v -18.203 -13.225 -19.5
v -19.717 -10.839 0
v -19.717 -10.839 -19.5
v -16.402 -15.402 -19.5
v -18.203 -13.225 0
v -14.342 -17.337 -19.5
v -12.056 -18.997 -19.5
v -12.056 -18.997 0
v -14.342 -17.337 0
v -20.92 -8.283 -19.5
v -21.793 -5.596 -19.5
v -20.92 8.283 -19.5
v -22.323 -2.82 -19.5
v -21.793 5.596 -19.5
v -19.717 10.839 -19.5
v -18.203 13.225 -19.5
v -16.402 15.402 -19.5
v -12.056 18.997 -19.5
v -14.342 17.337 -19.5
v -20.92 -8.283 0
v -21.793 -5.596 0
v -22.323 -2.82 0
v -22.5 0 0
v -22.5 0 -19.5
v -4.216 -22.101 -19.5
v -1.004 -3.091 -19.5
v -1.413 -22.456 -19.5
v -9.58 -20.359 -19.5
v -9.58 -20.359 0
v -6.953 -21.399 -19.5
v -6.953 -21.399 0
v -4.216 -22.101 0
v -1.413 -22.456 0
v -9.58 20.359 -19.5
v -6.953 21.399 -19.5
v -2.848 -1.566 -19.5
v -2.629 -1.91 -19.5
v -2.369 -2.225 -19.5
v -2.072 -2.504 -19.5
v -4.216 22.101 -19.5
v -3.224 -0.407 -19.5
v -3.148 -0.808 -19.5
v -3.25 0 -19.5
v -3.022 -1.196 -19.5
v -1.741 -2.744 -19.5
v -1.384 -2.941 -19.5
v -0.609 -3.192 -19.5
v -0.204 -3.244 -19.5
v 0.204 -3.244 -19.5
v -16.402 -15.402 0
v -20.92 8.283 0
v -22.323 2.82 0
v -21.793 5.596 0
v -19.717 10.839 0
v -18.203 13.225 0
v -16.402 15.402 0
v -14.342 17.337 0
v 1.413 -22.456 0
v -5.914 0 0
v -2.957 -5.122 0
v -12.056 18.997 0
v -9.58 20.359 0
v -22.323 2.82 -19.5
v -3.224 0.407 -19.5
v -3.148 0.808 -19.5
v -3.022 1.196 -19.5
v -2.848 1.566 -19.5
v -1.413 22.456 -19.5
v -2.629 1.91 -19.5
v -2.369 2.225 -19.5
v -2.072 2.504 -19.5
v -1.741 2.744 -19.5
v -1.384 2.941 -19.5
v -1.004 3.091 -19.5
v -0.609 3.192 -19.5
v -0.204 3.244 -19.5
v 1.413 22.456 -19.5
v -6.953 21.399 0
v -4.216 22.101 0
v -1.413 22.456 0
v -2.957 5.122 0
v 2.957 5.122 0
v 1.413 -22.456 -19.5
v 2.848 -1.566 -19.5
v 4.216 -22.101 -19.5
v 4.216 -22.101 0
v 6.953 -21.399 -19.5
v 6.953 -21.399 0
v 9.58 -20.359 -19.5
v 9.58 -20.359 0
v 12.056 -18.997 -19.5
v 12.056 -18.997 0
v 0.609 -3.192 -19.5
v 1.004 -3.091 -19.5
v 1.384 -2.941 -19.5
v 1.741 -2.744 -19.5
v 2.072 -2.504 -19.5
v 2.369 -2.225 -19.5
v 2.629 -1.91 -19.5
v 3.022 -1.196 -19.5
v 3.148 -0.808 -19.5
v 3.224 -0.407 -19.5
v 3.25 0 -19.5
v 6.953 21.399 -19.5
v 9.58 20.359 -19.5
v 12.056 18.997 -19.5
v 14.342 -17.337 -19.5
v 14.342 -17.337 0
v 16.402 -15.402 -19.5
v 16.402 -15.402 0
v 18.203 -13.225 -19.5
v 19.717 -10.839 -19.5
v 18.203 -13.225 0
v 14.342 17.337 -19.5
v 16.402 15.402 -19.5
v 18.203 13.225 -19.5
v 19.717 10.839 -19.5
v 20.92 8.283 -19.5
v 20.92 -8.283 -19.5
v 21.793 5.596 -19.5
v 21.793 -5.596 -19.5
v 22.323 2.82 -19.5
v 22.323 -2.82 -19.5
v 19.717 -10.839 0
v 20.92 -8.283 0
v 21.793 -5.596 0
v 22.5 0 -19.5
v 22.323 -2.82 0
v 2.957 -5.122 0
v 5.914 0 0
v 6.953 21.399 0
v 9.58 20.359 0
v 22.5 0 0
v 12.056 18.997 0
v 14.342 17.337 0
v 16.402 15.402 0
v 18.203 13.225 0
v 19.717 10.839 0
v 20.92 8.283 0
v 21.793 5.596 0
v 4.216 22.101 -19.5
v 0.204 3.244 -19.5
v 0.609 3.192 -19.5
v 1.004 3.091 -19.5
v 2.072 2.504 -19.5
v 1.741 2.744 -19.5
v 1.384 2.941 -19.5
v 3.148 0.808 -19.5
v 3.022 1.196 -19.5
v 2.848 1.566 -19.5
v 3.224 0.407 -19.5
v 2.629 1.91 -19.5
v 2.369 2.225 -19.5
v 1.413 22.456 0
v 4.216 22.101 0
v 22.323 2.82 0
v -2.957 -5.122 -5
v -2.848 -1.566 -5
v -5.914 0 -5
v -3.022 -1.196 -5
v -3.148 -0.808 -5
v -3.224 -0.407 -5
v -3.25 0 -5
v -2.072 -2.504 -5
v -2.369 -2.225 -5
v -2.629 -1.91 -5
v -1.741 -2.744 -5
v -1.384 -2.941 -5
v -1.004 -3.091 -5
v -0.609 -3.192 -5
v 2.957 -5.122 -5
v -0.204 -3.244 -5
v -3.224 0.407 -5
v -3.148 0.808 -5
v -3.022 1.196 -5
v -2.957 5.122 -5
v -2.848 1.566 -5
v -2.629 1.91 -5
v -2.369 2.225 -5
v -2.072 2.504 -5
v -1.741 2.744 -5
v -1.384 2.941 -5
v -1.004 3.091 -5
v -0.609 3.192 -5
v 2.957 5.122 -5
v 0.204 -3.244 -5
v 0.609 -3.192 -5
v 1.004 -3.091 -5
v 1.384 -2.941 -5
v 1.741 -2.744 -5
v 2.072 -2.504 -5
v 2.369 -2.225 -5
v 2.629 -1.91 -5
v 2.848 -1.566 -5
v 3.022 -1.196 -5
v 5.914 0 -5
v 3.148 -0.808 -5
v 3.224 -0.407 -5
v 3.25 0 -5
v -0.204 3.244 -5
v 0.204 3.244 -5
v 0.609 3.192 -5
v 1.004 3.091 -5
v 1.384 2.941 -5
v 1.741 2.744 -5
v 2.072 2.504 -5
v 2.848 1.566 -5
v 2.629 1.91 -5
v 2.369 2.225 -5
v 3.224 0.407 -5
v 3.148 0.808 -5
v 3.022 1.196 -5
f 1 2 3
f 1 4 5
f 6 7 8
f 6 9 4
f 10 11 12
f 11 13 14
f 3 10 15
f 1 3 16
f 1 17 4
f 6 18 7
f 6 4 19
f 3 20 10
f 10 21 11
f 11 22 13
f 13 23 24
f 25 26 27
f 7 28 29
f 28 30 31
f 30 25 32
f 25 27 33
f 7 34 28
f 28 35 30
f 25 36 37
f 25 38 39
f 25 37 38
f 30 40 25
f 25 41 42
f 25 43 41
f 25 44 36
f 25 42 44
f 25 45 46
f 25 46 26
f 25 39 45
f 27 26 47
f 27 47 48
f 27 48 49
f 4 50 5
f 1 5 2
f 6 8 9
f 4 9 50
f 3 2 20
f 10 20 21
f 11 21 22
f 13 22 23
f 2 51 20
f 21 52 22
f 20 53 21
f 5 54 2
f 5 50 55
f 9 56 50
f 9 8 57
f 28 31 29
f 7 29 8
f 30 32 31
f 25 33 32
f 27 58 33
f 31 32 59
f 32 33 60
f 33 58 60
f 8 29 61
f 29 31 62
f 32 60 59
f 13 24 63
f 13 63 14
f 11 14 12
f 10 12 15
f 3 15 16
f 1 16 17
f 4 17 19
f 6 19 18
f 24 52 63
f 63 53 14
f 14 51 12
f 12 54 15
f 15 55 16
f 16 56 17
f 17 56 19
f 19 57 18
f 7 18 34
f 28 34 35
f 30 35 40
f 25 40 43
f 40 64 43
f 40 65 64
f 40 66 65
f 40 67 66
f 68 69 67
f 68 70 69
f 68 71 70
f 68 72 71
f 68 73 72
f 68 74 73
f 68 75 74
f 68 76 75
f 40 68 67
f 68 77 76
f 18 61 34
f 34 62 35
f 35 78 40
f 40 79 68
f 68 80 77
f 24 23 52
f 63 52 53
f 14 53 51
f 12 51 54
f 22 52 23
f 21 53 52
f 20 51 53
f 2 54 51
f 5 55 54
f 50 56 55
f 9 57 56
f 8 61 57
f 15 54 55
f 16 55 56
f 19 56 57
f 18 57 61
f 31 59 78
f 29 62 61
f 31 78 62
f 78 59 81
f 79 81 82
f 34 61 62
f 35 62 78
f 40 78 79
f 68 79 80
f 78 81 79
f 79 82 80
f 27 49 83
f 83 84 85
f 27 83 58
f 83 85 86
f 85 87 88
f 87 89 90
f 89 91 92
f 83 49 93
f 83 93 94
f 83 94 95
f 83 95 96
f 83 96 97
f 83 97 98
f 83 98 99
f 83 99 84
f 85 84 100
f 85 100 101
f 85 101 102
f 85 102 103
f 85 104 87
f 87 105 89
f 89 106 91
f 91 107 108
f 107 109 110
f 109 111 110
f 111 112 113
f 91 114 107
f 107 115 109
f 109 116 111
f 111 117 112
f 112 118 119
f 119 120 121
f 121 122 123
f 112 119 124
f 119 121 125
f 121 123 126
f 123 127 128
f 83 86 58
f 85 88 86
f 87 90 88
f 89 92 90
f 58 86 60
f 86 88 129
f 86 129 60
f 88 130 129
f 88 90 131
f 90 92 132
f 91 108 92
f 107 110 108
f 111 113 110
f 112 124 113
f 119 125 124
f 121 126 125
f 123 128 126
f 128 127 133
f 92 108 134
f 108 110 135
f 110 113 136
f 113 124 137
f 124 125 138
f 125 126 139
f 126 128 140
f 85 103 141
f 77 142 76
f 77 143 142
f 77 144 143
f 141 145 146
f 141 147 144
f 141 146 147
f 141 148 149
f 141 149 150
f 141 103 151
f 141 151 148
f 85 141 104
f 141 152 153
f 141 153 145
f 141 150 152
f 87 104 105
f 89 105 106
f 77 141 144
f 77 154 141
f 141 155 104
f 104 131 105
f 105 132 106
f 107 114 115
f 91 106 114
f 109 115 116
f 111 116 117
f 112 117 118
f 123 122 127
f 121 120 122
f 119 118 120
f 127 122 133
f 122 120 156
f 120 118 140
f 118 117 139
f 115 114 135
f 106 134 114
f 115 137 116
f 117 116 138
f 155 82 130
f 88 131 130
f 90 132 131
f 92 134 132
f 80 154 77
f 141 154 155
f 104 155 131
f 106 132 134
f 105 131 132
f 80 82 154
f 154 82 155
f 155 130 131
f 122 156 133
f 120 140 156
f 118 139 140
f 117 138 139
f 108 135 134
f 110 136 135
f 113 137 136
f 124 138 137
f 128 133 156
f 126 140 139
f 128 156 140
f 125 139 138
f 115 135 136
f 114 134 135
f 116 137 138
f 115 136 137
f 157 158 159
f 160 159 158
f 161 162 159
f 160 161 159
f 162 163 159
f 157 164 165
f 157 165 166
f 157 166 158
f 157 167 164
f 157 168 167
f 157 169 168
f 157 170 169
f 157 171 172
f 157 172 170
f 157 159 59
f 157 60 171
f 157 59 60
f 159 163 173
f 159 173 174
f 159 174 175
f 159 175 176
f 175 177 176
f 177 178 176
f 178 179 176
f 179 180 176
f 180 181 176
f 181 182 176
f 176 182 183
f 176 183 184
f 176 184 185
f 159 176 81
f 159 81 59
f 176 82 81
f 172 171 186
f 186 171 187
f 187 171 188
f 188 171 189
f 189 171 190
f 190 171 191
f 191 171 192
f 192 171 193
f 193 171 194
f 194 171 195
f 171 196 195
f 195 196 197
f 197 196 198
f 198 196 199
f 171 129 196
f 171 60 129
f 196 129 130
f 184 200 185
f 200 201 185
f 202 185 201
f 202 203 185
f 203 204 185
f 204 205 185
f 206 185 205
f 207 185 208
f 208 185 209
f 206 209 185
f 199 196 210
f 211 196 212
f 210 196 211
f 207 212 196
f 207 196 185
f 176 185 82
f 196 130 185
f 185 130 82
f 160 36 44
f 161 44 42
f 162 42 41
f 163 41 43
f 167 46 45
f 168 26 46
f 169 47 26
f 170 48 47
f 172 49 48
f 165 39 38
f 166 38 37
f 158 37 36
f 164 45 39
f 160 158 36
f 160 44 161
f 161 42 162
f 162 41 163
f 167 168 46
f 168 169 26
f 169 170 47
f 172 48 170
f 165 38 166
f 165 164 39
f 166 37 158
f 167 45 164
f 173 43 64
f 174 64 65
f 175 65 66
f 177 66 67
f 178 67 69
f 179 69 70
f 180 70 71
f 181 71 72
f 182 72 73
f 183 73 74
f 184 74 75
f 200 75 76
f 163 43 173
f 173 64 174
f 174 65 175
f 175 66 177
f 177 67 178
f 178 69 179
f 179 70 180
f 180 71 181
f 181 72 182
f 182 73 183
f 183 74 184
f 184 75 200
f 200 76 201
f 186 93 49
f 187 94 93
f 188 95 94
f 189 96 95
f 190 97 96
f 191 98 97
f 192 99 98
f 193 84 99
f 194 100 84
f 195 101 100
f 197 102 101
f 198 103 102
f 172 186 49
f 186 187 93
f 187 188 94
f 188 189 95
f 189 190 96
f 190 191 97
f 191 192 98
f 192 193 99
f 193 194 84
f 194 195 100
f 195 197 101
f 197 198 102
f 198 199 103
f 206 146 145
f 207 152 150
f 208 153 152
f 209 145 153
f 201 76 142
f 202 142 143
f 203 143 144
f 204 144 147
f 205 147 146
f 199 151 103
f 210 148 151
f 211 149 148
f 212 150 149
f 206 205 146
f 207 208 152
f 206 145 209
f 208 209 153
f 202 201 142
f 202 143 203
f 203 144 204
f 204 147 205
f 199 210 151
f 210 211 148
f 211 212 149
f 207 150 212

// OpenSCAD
$fn = 50;

difference() {
	union() {
		translate(v = [0, 0, -19.5]) {
			cylinder(h = 19.5, r = 22.5);
		}
		#translate(v = [0, 0, -21.0]) {
			cylinder(h = 21, r = 2.875);
		}
	}
	union() {
		translate(v = [0, 0, 0]) {
			rotate(a = [0, 0, 0]) {
				difference() {
					union() {
						translate(v = [0, 0, -5]) {
							linear_extrude(height = 5) {
								polygon(points = [[5.914249999999999, 0.0], [2.957125, 5.1218907443321156], [-2.9571249999999982, 5.1218907443321156], [-5.914249999999999, 7.242867331857232e-16], [-2.9571250000000022, -5.121890744332115], [2.9571249999999956, -5.121890744332118]]);
							}
						}
					}
					union();
				}
			}
		}
		#translate(v = [0, 0, -100.0]) {
			cylinder(h = 200, r = 3.25);
		}
	}
}
